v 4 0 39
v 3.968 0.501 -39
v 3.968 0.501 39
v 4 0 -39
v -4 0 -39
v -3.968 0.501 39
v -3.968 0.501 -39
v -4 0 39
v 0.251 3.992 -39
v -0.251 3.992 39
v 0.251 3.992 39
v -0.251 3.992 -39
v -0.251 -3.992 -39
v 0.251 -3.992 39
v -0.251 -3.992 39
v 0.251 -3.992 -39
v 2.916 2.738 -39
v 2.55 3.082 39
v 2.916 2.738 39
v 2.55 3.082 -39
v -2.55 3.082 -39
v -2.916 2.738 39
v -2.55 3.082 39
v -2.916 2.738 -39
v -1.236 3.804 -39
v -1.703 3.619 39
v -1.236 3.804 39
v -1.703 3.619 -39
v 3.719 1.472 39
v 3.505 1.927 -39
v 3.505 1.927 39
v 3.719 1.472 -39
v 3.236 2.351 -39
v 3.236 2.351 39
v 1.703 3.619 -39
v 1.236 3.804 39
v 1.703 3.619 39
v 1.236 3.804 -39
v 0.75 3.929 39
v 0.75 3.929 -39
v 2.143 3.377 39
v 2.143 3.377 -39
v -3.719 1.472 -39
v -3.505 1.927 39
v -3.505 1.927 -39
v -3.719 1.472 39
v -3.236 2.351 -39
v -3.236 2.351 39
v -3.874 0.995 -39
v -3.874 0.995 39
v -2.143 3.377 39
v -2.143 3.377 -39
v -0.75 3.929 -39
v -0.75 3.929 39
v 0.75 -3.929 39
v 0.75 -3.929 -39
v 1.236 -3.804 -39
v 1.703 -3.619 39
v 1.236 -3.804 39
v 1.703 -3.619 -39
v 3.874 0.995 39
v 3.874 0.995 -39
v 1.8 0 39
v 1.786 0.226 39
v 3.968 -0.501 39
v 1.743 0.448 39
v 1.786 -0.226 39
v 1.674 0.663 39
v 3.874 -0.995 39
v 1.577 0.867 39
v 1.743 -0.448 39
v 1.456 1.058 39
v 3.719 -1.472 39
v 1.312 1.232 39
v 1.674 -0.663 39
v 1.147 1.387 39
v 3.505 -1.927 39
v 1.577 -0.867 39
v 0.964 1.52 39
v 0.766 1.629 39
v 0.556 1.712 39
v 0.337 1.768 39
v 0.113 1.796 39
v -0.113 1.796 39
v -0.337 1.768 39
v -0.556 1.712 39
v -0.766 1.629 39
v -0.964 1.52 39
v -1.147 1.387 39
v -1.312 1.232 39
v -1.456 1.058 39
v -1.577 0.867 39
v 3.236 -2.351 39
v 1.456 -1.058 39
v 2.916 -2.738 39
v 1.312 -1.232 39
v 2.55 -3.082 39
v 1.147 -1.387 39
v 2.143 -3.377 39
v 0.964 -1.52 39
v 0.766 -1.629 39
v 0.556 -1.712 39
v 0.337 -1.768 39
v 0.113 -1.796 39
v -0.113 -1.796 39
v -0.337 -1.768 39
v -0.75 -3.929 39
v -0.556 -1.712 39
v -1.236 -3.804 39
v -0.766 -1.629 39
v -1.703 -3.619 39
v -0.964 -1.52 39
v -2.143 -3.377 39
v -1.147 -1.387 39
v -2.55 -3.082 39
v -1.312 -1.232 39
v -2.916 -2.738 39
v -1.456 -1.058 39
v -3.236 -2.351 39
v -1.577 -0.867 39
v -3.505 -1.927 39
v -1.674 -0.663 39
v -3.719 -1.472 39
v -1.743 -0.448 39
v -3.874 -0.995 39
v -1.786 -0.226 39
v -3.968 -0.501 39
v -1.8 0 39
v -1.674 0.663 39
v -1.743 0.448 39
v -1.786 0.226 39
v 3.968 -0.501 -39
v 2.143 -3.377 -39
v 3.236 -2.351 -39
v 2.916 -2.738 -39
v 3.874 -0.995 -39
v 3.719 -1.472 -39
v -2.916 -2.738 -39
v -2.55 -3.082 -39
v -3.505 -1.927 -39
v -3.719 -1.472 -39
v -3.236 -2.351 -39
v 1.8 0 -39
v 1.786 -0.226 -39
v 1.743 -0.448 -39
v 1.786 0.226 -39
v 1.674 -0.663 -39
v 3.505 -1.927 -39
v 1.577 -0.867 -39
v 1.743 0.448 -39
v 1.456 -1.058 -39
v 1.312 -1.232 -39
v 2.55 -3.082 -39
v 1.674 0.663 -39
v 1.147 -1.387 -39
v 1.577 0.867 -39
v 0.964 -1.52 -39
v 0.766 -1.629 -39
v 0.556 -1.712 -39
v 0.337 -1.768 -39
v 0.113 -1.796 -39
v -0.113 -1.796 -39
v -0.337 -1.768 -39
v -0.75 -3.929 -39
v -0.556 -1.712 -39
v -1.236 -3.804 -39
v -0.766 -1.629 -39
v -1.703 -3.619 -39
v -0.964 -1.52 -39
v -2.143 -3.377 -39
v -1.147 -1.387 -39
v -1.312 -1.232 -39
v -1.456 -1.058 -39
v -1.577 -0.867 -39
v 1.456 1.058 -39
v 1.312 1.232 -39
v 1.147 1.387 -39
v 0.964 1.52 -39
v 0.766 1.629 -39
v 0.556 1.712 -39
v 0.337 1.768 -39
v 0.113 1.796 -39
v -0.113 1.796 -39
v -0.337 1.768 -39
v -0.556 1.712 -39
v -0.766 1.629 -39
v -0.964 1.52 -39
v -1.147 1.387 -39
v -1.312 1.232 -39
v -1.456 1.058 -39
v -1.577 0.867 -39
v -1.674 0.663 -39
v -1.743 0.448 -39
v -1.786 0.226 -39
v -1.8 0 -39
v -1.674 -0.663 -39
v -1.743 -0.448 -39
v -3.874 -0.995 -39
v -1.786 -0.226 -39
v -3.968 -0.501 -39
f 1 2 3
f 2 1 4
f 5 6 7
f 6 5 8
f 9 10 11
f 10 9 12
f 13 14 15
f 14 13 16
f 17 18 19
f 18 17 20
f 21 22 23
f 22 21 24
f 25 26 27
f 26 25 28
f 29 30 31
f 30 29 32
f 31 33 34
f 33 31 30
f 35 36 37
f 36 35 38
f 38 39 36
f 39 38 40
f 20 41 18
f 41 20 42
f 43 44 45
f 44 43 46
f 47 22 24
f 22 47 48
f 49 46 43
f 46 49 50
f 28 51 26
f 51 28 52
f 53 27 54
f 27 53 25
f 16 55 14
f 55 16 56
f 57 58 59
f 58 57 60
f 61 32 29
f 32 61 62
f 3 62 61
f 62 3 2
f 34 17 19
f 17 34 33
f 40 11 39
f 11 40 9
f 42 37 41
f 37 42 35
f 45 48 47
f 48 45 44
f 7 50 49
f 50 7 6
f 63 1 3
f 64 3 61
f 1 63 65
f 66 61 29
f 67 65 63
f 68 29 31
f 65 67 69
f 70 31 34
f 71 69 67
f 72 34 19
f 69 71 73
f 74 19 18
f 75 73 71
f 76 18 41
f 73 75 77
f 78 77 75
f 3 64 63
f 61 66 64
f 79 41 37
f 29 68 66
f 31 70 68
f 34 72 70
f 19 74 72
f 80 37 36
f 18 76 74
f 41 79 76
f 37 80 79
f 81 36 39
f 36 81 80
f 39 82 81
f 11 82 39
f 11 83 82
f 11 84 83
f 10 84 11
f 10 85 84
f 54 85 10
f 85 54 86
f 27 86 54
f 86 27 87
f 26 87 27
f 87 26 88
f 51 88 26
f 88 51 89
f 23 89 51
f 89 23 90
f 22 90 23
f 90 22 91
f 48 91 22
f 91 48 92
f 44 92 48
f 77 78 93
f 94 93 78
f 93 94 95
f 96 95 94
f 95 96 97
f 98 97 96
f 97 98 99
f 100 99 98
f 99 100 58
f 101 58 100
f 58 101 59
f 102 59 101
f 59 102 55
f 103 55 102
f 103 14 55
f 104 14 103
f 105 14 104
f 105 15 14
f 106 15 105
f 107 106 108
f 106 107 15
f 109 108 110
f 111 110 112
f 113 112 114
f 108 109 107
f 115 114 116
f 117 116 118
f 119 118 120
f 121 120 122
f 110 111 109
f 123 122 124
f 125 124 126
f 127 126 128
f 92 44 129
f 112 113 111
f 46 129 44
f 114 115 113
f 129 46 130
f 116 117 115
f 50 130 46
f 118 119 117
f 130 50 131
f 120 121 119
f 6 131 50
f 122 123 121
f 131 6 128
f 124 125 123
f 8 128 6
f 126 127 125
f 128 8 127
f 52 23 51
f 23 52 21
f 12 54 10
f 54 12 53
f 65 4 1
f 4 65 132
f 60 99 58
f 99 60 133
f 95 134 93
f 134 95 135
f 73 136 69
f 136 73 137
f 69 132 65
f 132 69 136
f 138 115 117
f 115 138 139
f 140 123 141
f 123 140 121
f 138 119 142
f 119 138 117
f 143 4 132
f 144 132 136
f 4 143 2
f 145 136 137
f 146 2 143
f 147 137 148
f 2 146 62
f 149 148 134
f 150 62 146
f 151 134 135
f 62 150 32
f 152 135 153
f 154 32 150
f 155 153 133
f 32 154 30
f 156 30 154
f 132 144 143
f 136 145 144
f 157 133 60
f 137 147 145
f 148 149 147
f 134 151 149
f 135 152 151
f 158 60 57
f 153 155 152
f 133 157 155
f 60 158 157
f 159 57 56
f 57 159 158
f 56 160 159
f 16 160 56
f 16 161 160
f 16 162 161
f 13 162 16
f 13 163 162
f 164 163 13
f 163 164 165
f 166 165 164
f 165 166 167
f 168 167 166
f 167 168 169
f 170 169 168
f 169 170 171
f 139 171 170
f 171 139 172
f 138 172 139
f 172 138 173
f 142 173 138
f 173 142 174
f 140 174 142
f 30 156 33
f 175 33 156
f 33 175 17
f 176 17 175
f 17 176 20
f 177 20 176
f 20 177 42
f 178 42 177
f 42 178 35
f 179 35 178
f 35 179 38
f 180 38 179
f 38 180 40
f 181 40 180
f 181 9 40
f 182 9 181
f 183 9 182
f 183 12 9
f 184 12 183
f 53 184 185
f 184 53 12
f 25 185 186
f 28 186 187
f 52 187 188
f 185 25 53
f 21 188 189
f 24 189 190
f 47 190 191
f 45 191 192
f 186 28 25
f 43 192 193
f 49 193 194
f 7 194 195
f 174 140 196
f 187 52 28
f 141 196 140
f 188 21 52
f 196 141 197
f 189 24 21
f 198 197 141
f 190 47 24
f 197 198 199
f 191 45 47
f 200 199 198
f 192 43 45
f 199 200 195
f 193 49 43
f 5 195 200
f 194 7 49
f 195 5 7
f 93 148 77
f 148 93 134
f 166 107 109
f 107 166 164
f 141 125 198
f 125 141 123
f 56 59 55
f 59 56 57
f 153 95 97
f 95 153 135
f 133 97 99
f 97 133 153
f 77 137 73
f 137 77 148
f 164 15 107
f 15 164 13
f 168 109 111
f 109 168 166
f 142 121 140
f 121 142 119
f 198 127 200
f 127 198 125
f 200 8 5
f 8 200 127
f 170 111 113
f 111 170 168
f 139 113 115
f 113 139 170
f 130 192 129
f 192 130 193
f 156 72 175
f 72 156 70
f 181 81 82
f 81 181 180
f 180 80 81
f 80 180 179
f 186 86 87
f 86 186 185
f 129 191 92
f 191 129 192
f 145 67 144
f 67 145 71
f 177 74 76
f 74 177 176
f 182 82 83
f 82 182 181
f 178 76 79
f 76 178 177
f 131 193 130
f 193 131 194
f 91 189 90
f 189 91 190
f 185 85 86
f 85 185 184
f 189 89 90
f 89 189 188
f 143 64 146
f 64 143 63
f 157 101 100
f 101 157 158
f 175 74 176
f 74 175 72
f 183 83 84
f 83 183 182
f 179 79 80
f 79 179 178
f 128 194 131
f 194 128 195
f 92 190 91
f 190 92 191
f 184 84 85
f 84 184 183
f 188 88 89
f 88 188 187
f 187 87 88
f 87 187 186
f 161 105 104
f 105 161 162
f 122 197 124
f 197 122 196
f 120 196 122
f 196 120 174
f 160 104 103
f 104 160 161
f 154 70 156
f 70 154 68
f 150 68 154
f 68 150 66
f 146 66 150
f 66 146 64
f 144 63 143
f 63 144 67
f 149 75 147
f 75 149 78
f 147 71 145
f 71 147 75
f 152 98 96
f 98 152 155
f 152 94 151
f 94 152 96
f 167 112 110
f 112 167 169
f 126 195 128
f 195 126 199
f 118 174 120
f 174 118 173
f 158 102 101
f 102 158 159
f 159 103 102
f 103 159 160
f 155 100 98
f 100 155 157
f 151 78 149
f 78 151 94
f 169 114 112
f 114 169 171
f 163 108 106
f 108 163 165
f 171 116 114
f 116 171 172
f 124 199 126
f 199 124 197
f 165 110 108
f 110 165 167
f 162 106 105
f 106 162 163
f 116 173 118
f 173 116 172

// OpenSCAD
$fn = 50;


difference() {
	union() {
		translate(v = [0, 0, -39.0000000000]) {
			cylinder(h = 78, r = 4.0000000000);
		}
	}
	union() {
		translate(v = [0, 0, -100.0000000000]) {
			cylinder(h = 200, r = 1.8000000000);
		}
	}
}
